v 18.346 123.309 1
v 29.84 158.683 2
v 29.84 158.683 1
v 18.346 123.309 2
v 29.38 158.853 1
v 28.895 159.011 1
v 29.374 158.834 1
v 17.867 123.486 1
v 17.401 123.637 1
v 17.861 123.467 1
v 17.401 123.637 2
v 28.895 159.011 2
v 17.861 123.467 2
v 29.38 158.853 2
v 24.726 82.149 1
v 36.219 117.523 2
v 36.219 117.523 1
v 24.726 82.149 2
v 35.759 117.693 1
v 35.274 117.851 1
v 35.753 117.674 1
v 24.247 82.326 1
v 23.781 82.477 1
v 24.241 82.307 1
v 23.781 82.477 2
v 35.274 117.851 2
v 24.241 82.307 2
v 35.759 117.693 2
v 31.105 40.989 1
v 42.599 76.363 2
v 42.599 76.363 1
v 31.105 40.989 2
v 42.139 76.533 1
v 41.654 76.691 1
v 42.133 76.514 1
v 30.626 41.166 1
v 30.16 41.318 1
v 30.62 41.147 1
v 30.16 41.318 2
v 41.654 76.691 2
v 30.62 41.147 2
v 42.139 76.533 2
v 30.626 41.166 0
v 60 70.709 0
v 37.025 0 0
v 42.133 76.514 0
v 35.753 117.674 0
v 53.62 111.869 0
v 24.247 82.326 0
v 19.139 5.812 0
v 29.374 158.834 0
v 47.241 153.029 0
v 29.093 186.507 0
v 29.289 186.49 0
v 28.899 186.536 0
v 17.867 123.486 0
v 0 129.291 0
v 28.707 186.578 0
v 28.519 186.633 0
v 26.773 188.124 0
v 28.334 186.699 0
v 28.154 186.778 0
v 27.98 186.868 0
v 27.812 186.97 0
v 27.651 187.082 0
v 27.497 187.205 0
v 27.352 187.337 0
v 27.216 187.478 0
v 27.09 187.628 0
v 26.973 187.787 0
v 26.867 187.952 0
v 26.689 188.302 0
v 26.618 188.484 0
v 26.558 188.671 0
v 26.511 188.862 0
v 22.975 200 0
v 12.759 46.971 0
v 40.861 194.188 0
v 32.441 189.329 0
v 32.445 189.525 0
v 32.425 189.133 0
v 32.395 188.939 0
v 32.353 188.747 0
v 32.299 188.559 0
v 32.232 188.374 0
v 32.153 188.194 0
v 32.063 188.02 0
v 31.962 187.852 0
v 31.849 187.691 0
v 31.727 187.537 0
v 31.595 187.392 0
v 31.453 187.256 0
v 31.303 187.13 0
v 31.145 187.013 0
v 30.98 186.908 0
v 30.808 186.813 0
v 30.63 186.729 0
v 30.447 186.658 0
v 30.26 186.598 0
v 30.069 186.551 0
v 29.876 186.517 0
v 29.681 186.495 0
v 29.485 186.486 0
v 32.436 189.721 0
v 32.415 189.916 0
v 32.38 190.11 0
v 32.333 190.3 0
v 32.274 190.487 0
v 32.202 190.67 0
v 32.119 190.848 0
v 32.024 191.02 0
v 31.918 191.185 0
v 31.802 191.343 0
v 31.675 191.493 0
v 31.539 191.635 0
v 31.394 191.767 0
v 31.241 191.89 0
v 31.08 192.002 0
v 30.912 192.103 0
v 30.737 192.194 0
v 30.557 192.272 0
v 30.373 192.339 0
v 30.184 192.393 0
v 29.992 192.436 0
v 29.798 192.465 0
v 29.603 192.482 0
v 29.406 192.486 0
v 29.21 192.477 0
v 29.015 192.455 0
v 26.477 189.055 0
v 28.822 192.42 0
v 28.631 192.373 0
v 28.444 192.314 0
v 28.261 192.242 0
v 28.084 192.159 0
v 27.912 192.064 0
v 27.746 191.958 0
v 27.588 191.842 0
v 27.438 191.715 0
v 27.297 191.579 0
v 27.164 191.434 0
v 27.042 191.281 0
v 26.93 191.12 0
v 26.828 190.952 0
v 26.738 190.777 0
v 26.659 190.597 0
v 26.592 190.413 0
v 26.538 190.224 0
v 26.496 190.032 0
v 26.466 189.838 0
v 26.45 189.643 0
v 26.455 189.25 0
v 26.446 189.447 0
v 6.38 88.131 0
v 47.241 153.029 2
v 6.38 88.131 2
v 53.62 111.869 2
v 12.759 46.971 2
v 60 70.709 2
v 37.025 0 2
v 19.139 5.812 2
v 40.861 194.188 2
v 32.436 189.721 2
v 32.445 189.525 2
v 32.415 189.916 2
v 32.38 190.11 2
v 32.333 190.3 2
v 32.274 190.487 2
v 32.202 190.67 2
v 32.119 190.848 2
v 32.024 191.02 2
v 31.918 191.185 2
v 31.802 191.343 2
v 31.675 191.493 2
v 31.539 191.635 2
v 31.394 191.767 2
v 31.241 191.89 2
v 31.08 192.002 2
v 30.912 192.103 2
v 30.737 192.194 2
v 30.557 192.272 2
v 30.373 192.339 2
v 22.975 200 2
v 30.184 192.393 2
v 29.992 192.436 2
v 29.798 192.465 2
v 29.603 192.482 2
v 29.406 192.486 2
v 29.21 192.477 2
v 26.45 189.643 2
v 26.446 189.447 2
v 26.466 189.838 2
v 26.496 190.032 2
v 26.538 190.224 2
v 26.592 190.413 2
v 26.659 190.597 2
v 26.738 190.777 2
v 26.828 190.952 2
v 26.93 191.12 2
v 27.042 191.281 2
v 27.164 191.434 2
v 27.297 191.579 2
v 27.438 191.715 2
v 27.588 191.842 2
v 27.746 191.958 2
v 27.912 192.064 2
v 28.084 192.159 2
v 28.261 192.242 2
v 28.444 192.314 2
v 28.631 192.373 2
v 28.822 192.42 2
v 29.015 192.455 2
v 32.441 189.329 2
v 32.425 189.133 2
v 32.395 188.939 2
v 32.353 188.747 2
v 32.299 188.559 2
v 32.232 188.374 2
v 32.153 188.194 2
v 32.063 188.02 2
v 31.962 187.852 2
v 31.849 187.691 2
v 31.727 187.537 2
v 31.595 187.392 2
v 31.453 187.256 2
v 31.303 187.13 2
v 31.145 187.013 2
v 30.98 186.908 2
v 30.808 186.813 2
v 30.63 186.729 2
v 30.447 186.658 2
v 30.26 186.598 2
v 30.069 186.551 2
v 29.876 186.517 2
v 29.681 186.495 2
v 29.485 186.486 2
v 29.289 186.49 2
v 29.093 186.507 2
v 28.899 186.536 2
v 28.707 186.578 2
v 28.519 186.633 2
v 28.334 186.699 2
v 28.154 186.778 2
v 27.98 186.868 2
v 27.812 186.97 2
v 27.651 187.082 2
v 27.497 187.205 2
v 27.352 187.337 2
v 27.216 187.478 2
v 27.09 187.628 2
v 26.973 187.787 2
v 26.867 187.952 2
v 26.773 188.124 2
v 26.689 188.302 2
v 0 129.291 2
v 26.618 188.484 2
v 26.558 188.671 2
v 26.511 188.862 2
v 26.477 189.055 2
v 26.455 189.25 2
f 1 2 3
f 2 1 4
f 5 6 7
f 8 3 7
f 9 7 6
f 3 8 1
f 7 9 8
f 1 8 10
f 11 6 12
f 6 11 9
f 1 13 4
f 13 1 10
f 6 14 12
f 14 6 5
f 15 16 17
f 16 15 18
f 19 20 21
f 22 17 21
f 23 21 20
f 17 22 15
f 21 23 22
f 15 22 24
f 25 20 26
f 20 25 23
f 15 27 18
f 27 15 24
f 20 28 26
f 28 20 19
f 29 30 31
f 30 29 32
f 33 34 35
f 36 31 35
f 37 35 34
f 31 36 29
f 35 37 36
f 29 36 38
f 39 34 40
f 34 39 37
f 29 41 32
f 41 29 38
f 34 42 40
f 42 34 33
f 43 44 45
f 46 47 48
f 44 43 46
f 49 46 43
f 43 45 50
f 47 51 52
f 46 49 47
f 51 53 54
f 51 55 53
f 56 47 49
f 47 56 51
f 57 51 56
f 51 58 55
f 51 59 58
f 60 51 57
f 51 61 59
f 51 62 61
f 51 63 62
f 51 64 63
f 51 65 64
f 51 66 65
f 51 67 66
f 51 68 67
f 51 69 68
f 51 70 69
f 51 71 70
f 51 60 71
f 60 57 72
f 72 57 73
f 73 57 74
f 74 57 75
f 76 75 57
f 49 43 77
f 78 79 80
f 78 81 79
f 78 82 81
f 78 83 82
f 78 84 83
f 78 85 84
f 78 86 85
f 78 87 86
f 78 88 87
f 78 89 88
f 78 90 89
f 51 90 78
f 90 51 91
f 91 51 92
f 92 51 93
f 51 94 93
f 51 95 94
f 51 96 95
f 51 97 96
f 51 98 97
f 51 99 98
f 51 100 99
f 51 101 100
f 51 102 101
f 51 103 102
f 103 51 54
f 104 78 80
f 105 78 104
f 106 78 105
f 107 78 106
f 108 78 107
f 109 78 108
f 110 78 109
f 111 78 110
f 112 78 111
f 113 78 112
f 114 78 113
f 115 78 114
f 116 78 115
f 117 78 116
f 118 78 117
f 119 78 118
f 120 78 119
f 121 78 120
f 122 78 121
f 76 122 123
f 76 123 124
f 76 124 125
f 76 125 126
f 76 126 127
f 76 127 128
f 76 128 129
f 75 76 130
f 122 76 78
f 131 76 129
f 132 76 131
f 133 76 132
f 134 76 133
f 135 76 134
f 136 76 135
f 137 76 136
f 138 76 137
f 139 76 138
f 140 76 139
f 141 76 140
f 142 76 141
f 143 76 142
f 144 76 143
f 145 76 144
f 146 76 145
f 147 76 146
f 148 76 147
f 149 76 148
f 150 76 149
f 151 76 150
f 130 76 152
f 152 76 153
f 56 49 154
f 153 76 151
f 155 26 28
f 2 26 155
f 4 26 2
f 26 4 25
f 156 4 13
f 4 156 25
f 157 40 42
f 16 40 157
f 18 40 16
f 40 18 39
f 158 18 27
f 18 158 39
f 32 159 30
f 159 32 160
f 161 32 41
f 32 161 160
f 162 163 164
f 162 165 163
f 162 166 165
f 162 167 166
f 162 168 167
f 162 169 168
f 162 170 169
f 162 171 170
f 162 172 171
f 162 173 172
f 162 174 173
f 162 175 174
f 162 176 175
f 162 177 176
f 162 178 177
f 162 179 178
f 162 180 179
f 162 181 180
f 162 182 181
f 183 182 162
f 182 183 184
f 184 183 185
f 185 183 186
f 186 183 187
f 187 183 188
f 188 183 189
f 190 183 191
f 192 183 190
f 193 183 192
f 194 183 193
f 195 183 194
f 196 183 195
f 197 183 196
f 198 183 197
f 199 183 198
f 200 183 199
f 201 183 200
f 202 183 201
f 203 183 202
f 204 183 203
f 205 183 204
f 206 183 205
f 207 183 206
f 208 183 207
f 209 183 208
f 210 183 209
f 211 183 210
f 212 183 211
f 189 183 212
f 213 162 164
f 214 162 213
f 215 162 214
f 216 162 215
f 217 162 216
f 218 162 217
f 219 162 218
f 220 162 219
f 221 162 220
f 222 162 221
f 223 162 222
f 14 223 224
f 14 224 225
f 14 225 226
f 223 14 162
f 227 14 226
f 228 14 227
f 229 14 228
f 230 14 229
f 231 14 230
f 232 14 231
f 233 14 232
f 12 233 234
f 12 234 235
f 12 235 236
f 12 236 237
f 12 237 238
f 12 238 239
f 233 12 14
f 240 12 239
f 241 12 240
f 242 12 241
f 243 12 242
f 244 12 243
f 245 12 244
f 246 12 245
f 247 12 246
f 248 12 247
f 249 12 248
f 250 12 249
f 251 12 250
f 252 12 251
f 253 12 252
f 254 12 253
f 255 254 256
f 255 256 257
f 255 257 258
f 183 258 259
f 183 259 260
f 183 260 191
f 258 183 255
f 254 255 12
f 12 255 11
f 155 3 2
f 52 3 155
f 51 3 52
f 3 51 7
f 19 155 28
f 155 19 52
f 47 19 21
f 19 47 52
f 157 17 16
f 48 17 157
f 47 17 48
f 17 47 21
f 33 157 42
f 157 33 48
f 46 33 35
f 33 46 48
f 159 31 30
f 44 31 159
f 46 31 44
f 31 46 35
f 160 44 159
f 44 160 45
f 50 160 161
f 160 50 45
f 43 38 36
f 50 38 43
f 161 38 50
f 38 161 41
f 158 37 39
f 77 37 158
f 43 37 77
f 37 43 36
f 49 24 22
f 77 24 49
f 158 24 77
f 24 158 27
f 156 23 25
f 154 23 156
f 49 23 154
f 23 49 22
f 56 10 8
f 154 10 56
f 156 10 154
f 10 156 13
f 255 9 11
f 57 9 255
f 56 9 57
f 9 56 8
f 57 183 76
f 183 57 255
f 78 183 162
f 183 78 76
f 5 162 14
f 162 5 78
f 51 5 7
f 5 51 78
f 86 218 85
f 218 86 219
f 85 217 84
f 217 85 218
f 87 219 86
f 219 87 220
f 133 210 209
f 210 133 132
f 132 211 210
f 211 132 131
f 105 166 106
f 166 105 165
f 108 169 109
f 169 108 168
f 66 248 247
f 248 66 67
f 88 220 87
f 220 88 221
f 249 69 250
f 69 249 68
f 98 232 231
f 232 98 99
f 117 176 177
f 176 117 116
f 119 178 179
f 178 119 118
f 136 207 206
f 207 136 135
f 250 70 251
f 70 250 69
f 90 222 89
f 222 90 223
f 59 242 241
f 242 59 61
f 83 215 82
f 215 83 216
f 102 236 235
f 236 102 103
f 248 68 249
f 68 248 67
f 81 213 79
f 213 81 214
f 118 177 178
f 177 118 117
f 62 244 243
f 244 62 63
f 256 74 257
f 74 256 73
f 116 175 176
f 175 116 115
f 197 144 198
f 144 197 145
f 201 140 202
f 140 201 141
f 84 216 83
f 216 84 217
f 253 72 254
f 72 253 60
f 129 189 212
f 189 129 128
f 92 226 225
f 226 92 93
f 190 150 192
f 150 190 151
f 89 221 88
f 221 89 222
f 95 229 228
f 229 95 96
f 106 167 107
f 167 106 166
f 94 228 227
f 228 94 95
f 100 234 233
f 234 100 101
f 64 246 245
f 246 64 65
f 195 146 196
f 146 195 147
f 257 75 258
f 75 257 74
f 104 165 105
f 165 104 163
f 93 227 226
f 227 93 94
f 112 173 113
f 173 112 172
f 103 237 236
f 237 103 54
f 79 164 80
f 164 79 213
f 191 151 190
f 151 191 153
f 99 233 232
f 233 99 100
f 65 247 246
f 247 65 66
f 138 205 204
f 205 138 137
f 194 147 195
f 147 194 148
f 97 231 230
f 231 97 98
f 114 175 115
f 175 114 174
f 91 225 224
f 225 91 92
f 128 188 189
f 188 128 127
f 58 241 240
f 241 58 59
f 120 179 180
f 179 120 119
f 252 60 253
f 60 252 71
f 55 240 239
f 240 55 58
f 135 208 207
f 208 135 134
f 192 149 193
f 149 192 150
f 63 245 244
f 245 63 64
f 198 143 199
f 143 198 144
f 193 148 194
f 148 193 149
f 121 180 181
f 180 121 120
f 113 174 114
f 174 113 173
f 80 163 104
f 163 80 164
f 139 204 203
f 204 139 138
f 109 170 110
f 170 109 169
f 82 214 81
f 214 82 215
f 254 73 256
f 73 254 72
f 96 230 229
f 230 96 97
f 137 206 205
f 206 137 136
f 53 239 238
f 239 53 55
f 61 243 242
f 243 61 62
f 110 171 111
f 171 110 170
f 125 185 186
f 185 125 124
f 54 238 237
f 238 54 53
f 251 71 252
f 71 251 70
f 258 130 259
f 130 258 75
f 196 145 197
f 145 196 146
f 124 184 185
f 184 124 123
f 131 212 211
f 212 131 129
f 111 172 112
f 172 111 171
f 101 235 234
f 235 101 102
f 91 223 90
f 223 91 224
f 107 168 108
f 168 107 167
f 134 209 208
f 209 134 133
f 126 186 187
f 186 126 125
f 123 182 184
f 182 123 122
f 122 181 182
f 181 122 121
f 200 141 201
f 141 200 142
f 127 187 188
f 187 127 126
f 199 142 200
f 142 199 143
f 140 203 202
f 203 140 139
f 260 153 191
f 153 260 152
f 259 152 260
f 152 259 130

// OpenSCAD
// 写真を参考に、斜めの長方形4枚を半分ずつずらして接続。
// 単位mm。外形60 x 200、板厚2、折り目に残す厚み1。
width = 60;
depth = 200;
thickness = 2;
fold_thickness = 1;
fold_width = 1;
tilt = 18; // 長辺の鉛直からの傾き（度）
rope_hole_diameter = 6; // 縄を通す貫通穴の直径
rope_hole_inset = 8;    // 上端の短辺から穴中心までの距離

module shide(width, depth, thickness, fold_thickness, fold_width, tilt,
             rope_hole_diameter, rope_hole_inset) {
    assert(width > 0 && depth > 0 && thickness > 0);
    assert(fold_thickness > 0 && fold_thickness <= thickness);
    assert(fold_width > 0 && tilt > 0 && tilt < 45);

    // 長方形の直角を保ち、外形寸法から長辺・短辺を求める。
    c = cos(tilt);
    s = sin(tilt);
    overlap = 0.02; // 接続面の数値誤差を避ける微小な重なり
    length = (depth * c - width * s) / (2.5 * c*c + 0.5 * s*s);
    total_short = (width + 0.5 * length * s) / c;
    strip_width = (total_short + 3 * overlap) / 4;
    pitch = strip_width - overlap;
    assert(length > 0 && strip_width > fold_width);
    assert(pitch * c > length * s / 2,
           "Dimensions and tilt cannot form the intended stepped silhouette.");
    assert(rope_hole_diameter > 0 && rope_hole_diameter < strip_width);
    assert(rope_hole_inset > rope_hole_diameter / 2 &&
           rope_hole_inset + rope_hole_diameter / 2 < length / 2,
           "Rope hole must fit inside the free upper end.");

    // ローカルXが短辺方向、Yが長辺方向。
    translate([length * s, depth, 0])
        rotate([0, 0, -tilt])
            mirror([0, 1, 0])
                difference() {
                    linear_extrude(height = thickness)
                        union() {
                            for (i = [0:3])
                                translate([i * pitch, i * length / 2])
                                    square([strip_width, length]);
                        }

                    // 最上段の短辺中央寄りに穴を開ける。標準で端に5mm残る。
                    translate([strip_width / 2, rope_hole_inset, -0.1])
                        cylinder(d = rope_hole_diameter,
                                 h = thickness + 0.2, $fn = 96);

                    // 接する長辺に沿う3本の折り目。底面は平らに保つ。
                    for (i = [1:3])
                        translate([i * pitch + overlap / 2 - fold_width / 2,
                                   i * length / 2 - overlap, fold_thickness])
                            cube([fold_width, length / 2 + 2 * overlap,
                                  thickness - fold_thickness + 0.1]);
                }
}

shide(width, depth, thickness, fold_thickness, fold_width, tilt,
      rope_hole_diameter, rope_hole_inset);
